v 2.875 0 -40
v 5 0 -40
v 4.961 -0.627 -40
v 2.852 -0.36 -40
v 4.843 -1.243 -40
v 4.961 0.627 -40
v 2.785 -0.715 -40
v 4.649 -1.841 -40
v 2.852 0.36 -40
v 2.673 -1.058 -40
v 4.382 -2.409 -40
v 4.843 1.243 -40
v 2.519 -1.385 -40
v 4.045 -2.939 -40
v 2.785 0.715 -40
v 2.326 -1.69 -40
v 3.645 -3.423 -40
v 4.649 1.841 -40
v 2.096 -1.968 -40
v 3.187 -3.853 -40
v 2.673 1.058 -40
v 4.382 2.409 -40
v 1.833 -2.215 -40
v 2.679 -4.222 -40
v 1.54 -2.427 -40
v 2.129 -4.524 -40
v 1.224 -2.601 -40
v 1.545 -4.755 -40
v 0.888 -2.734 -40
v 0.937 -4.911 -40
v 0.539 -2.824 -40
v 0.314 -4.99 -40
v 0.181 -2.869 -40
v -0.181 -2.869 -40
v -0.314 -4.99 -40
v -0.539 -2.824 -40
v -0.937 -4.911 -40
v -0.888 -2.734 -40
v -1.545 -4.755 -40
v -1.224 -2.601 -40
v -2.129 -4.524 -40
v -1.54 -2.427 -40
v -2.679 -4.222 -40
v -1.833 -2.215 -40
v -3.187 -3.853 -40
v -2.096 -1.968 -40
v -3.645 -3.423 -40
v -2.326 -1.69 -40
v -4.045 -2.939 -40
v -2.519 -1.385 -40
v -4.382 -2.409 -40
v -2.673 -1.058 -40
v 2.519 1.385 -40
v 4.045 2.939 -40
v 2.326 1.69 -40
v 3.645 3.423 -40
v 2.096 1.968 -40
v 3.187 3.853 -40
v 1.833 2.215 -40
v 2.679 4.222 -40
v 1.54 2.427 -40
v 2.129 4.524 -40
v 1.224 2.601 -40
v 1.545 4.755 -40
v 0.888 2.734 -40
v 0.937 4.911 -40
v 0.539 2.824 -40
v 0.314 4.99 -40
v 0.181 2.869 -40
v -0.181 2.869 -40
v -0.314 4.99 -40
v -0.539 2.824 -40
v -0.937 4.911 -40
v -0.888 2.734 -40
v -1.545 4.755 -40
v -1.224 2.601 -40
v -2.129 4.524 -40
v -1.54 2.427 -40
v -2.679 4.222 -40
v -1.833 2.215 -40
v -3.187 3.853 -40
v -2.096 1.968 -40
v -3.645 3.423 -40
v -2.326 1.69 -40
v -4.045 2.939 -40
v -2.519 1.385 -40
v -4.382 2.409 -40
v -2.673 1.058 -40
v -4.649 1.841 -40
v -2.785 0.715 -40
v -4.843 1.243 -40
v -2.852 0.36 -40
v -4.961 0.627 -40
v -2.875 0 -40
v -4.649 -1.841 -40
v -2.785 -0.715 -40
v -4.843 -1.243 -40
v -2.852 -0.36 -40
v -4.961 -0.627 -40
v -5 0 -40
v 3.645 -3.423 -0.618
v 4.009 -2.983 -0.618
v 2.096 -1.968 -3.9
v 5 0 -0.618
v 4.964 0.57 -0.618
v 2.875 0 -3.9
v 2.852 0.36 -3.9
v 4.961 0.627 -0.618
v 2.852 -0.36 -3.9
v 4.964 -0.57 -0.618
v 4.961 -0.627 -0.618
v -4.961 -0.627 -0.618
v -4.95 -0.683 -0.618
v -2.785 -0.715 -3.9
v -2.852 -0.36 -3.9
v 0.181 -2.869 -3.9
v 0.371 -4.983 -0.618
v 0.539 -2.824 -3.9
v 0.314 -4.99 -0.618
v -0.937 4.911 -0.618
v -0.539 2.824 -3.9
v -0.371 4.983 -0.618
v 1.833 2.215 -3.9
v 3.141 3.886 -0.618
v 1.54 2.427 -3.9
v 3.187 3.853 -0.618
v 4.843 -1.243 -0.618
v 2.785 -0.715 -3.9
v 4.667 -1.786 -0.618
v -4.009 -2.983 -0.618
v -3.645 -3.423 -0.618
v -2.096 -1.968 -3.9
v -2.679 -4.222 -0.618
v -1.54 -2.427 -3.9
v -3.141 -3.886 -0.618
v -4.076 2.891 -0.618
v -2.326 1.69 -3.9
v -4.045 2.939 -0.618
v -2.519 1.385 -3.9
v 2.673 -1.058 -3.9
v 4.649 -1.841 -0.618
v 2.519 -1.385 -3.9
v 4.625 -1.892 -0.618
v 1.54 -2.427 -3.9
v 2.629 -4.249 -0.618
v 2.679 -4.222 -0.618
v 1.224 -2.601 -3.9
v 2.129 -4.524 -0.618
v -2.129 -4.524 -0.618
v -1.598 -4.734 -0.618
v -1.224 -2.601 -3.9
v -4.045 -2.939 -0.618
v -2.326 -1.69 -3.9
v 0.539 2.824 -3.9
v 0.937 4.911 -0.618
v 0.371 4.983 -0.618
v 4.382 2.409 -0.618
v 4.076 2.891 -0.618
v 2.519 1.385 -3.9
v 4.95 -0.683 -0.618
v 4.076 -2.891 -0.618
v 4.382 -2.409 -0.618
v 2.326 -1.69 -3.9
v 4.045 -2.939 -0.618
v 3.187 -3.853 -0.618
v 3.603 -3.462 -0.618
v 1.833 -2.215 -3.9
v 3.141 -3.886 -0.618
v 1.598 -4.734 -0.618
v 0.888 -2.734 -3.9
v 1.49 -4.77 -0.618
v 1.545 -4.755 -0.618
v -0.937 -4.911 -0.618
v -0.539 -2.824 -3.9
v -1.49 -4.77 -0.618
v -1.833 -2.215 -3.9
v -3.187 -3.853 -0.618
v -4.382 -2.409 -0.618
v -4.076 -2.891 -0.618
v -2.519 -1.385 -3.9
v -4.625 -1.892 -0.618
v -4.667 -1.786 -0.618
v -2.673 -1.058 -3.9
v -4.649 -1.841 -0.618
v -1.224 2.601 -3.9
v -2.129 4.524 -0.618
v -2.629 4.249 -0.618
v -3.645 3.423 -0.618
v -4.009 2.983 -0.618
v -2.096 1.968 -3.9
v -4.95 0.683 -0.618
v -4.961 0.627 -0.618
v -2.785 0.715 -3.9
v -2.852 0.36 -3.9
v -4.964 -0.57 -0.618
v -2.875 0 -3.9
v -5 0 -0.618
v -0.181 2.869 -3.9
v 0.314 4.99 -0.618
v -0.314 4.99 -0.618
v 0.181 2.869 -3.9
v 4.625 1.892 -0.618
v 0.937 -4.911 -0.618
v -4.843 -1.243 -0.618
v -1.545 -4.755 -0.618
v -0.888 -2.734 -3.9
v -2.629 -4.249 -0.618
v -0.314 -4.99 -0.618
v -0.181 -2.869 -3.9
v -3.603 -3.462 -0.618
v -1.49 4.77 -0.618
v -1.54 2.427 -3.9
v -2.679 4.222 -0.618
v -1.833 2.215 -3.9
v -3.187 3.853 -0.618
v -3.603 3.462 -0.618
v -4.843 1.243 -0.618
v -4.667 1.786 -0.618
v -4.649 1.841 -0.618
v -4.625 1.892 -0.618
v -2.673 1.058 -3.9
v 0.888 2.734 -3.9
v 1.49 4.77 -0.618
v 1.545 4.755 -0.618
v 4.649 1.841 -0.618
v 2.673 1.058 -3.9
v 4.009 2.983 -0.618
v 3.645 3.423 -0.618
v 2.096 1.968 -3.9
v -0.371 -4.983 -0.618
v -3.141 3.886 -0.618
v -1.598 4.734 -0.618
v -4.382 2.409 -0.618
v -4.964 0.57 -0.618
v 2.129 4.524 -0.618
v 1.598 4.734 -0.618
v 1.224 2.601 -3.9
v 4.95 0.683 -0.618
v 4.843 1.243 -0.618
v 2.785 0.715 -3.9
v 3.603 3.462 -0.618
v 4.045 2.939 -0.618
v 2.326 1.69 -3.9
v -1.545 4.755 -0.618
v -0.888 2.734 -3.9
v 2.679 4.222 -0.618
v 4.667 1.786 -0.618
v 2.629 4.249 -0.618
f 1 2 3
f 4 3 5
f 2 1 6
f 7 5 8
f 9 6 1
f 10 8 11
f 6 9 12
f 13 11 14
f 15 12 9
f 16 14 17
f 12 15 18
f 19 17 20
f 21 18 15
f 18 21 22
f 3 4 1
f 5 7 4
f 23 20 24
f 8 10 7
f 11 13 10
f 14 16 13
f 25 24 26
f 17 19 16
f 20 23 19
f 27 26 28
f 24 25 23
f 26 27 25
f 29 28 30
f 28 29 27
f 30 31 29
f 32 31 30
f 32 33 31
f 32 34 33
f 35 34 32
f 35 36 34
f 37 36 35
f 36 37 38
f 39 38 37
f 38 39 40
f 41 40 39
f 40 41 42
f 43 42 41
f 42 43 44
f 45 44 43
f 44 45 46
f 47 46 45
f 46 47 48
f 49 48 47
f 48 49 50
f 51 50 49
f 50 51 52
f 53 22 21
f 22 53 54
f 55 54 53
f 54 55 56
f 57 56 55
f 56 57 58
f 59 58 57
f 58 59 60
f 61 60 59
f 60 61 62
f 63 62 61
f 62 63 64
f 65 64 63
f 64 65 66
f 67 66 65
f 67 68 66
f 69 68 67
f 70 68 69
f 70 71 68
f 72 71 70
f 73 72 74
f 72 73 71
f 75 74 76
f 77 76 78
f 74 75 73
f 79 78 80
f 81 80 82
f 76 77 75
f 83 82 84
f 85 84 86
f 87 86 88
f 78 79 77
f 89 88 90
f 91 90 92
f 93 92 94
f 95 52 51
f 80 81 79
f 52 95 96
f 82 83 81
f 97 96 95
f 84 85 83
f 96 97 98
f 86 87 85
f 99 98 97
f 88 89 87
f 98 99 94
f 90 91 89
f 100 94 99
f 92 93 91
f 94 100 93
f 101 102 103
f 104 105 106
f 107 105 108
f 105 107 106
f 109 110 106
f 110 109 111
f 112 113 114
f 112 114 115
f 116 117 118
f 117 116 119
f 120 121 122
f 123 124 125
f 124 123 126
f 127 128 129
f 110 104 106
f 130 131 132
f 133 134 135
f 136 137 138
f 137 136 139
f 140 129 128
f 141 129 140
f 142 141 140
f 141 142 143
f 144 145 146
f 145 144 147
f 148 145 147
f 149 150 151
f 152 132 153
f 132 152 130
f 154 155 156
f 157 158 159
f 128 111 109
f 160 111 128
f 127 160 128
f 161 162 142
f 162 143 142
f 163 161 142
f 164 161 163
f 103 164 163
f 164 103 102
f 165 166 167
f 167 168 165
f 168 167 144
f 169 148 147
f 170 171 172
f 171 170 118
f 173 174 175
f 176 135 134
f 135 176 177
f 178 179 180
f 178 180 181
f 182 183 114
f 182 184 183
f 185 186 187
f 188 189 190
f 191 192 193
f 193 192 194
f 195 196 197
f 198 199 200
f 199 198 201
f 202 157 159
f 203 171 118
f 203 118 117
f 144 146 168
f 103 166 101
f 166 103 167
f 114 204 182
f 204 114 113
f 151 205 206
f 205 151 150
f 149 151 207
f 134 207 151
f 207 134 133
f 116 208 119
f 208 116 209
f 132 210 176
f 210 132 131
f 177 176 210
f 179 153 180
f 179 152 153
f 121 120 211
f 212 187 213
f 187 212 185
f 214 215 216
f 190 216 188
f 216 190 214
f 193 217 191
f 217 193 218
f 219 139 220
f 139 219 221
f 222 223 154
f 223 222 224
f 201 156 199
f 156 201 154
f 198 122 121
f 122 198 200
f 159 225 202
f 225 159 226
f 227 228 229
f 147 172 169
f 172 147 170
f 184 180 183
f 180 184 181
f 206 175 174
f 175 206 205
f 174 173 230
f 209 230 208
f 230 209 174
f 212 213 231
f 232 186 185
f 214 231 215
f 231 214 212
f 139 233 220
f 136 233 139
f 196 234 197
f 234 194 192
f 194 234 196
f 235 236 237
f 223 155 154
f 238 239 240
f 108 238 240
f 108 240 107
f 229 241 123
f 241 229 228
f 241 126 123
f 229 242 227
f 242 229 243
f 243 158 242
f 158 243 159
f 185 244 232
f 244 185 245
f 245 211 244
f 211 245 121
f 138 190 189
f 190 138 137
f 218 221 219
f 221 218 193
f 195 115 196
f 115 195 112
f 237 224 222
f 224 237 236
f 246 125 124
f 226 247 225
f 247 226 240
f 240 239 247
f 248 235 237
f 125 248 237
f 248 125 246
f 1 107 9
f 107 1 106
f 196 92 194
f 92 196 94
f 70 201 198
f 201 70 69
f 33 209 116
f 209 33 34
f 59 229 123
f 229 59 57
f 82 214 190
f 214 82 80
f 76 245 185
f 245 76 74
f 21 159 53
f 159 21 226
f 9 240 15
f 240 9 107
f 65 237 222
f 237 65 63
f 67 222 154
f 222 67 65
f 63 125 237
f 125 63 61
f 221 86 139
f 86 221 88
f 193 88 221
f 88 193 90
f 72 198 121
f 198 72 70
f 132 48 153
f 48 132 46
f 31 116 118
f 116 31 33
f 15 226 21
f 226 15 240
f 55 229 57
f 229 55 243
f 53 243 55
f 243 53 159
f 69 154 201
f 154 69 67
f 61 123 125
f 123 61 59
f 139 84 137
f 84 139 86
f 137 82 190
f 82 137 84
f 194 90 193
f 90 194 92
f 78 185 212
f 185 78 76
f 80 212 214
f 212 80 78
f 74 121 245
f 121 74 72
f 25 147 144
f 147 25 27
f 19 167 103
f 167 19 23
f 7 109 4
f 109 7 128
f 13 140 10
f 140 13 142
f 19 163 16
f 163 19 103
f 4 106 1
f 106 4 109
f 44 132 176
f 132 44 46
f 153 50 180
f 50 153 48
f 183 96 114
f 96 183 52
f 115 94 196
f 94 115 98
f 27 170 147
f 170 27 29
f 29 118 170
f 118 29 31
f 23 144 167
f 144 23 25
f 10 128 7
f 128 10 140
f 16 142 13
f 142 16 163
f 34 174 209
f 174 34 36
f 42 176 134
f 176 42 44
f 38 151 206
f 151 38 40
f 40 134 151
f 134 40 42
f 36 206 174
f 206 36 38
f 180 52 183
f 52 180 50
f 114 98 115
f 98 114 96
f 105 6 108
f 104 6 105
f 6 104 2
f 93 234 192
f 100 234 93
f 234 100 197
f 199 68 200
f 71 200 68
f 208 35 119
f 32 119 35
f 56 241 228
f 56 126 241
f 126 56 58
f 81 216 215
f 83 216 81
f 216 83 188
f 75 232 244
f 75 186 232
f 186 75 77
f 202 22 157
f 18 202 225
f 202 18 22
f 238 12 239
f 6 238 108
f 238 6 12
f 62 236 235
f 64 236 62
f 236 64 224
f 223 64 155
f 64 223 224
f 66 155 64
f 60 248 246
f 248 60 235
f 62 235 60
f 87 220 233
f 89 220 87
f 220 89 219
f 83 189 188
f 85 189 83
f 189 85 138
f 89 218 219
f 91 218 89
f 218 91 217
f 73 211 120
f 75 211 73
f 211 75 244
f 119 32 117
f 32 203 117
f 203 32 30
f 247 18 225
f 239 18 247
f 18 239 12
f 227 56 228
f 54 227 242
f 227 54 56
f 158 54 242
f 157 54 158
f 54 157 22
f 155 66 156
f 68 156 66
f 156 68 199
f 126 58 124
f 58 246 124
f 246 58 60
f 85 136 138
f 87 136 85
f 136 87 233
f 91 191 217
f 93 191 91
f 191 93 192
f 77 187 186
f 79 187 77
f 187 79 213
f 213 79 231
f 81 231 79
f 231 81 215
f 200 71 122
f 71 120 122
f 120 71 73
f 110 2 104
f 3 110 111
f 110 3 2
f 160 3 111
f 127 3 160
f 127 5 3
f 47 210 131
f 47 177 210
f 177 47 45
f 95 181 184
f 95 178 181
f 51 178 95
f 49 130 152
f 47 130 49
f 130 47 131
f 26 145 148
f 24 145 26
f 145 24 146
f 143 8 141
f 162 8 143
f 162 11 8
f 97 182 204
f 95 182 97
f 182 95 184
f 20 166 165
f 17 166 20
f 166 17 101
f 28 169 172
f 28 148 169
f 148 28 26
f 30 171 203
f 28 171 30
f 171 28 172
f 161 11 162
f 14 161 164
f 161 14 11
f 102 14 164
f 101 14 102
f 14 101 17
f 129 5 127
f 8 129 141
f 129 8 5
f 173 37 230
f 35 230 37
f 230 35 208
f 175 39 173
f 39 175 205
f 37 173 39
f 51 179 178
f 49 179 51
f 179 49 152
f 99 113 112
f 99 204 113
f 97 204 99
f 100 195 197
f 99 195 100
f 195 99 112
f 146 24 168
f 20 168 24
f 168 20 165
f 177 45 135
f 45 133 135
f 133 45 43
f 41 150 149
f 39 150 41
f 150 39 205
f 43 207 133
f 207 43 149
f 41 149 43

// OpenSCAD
$fn = 50;


difference() {
	union() {
		translate(v = [0, 0, -40.0000000000]) {
			cylinder(h = 40, r = 5.0000000000);
		}
		cylinder(h = 0, r = 8.0000000000);
	}
	union() {
		translate(v = [0, 0, 0]) {
			rotate(a = [0, 0, 0]) {
				difference() {
					union() {
						#translate(v = [0, 0, -40.0000000000]) {
							cylinder(h = 40, r = 2.6000000000);
						}
						#translate(v = [0, 0, -3.9000000000]) {
							cylinder(h = 3.9000000000, r1 = 2.8750000000, r2 = 5.4000000000);
						}
						#translate(v = [0, 0, -40.0000000000]) {
							cylinder(h = 40, r = 2.8750000000);
						}
						#translate(v = [0, 0, -40.0000000000]) {
							cylinder(h = 40, r = 2.6000000000);
						}
					}
					union();
				}
			}
		}
	}
}
